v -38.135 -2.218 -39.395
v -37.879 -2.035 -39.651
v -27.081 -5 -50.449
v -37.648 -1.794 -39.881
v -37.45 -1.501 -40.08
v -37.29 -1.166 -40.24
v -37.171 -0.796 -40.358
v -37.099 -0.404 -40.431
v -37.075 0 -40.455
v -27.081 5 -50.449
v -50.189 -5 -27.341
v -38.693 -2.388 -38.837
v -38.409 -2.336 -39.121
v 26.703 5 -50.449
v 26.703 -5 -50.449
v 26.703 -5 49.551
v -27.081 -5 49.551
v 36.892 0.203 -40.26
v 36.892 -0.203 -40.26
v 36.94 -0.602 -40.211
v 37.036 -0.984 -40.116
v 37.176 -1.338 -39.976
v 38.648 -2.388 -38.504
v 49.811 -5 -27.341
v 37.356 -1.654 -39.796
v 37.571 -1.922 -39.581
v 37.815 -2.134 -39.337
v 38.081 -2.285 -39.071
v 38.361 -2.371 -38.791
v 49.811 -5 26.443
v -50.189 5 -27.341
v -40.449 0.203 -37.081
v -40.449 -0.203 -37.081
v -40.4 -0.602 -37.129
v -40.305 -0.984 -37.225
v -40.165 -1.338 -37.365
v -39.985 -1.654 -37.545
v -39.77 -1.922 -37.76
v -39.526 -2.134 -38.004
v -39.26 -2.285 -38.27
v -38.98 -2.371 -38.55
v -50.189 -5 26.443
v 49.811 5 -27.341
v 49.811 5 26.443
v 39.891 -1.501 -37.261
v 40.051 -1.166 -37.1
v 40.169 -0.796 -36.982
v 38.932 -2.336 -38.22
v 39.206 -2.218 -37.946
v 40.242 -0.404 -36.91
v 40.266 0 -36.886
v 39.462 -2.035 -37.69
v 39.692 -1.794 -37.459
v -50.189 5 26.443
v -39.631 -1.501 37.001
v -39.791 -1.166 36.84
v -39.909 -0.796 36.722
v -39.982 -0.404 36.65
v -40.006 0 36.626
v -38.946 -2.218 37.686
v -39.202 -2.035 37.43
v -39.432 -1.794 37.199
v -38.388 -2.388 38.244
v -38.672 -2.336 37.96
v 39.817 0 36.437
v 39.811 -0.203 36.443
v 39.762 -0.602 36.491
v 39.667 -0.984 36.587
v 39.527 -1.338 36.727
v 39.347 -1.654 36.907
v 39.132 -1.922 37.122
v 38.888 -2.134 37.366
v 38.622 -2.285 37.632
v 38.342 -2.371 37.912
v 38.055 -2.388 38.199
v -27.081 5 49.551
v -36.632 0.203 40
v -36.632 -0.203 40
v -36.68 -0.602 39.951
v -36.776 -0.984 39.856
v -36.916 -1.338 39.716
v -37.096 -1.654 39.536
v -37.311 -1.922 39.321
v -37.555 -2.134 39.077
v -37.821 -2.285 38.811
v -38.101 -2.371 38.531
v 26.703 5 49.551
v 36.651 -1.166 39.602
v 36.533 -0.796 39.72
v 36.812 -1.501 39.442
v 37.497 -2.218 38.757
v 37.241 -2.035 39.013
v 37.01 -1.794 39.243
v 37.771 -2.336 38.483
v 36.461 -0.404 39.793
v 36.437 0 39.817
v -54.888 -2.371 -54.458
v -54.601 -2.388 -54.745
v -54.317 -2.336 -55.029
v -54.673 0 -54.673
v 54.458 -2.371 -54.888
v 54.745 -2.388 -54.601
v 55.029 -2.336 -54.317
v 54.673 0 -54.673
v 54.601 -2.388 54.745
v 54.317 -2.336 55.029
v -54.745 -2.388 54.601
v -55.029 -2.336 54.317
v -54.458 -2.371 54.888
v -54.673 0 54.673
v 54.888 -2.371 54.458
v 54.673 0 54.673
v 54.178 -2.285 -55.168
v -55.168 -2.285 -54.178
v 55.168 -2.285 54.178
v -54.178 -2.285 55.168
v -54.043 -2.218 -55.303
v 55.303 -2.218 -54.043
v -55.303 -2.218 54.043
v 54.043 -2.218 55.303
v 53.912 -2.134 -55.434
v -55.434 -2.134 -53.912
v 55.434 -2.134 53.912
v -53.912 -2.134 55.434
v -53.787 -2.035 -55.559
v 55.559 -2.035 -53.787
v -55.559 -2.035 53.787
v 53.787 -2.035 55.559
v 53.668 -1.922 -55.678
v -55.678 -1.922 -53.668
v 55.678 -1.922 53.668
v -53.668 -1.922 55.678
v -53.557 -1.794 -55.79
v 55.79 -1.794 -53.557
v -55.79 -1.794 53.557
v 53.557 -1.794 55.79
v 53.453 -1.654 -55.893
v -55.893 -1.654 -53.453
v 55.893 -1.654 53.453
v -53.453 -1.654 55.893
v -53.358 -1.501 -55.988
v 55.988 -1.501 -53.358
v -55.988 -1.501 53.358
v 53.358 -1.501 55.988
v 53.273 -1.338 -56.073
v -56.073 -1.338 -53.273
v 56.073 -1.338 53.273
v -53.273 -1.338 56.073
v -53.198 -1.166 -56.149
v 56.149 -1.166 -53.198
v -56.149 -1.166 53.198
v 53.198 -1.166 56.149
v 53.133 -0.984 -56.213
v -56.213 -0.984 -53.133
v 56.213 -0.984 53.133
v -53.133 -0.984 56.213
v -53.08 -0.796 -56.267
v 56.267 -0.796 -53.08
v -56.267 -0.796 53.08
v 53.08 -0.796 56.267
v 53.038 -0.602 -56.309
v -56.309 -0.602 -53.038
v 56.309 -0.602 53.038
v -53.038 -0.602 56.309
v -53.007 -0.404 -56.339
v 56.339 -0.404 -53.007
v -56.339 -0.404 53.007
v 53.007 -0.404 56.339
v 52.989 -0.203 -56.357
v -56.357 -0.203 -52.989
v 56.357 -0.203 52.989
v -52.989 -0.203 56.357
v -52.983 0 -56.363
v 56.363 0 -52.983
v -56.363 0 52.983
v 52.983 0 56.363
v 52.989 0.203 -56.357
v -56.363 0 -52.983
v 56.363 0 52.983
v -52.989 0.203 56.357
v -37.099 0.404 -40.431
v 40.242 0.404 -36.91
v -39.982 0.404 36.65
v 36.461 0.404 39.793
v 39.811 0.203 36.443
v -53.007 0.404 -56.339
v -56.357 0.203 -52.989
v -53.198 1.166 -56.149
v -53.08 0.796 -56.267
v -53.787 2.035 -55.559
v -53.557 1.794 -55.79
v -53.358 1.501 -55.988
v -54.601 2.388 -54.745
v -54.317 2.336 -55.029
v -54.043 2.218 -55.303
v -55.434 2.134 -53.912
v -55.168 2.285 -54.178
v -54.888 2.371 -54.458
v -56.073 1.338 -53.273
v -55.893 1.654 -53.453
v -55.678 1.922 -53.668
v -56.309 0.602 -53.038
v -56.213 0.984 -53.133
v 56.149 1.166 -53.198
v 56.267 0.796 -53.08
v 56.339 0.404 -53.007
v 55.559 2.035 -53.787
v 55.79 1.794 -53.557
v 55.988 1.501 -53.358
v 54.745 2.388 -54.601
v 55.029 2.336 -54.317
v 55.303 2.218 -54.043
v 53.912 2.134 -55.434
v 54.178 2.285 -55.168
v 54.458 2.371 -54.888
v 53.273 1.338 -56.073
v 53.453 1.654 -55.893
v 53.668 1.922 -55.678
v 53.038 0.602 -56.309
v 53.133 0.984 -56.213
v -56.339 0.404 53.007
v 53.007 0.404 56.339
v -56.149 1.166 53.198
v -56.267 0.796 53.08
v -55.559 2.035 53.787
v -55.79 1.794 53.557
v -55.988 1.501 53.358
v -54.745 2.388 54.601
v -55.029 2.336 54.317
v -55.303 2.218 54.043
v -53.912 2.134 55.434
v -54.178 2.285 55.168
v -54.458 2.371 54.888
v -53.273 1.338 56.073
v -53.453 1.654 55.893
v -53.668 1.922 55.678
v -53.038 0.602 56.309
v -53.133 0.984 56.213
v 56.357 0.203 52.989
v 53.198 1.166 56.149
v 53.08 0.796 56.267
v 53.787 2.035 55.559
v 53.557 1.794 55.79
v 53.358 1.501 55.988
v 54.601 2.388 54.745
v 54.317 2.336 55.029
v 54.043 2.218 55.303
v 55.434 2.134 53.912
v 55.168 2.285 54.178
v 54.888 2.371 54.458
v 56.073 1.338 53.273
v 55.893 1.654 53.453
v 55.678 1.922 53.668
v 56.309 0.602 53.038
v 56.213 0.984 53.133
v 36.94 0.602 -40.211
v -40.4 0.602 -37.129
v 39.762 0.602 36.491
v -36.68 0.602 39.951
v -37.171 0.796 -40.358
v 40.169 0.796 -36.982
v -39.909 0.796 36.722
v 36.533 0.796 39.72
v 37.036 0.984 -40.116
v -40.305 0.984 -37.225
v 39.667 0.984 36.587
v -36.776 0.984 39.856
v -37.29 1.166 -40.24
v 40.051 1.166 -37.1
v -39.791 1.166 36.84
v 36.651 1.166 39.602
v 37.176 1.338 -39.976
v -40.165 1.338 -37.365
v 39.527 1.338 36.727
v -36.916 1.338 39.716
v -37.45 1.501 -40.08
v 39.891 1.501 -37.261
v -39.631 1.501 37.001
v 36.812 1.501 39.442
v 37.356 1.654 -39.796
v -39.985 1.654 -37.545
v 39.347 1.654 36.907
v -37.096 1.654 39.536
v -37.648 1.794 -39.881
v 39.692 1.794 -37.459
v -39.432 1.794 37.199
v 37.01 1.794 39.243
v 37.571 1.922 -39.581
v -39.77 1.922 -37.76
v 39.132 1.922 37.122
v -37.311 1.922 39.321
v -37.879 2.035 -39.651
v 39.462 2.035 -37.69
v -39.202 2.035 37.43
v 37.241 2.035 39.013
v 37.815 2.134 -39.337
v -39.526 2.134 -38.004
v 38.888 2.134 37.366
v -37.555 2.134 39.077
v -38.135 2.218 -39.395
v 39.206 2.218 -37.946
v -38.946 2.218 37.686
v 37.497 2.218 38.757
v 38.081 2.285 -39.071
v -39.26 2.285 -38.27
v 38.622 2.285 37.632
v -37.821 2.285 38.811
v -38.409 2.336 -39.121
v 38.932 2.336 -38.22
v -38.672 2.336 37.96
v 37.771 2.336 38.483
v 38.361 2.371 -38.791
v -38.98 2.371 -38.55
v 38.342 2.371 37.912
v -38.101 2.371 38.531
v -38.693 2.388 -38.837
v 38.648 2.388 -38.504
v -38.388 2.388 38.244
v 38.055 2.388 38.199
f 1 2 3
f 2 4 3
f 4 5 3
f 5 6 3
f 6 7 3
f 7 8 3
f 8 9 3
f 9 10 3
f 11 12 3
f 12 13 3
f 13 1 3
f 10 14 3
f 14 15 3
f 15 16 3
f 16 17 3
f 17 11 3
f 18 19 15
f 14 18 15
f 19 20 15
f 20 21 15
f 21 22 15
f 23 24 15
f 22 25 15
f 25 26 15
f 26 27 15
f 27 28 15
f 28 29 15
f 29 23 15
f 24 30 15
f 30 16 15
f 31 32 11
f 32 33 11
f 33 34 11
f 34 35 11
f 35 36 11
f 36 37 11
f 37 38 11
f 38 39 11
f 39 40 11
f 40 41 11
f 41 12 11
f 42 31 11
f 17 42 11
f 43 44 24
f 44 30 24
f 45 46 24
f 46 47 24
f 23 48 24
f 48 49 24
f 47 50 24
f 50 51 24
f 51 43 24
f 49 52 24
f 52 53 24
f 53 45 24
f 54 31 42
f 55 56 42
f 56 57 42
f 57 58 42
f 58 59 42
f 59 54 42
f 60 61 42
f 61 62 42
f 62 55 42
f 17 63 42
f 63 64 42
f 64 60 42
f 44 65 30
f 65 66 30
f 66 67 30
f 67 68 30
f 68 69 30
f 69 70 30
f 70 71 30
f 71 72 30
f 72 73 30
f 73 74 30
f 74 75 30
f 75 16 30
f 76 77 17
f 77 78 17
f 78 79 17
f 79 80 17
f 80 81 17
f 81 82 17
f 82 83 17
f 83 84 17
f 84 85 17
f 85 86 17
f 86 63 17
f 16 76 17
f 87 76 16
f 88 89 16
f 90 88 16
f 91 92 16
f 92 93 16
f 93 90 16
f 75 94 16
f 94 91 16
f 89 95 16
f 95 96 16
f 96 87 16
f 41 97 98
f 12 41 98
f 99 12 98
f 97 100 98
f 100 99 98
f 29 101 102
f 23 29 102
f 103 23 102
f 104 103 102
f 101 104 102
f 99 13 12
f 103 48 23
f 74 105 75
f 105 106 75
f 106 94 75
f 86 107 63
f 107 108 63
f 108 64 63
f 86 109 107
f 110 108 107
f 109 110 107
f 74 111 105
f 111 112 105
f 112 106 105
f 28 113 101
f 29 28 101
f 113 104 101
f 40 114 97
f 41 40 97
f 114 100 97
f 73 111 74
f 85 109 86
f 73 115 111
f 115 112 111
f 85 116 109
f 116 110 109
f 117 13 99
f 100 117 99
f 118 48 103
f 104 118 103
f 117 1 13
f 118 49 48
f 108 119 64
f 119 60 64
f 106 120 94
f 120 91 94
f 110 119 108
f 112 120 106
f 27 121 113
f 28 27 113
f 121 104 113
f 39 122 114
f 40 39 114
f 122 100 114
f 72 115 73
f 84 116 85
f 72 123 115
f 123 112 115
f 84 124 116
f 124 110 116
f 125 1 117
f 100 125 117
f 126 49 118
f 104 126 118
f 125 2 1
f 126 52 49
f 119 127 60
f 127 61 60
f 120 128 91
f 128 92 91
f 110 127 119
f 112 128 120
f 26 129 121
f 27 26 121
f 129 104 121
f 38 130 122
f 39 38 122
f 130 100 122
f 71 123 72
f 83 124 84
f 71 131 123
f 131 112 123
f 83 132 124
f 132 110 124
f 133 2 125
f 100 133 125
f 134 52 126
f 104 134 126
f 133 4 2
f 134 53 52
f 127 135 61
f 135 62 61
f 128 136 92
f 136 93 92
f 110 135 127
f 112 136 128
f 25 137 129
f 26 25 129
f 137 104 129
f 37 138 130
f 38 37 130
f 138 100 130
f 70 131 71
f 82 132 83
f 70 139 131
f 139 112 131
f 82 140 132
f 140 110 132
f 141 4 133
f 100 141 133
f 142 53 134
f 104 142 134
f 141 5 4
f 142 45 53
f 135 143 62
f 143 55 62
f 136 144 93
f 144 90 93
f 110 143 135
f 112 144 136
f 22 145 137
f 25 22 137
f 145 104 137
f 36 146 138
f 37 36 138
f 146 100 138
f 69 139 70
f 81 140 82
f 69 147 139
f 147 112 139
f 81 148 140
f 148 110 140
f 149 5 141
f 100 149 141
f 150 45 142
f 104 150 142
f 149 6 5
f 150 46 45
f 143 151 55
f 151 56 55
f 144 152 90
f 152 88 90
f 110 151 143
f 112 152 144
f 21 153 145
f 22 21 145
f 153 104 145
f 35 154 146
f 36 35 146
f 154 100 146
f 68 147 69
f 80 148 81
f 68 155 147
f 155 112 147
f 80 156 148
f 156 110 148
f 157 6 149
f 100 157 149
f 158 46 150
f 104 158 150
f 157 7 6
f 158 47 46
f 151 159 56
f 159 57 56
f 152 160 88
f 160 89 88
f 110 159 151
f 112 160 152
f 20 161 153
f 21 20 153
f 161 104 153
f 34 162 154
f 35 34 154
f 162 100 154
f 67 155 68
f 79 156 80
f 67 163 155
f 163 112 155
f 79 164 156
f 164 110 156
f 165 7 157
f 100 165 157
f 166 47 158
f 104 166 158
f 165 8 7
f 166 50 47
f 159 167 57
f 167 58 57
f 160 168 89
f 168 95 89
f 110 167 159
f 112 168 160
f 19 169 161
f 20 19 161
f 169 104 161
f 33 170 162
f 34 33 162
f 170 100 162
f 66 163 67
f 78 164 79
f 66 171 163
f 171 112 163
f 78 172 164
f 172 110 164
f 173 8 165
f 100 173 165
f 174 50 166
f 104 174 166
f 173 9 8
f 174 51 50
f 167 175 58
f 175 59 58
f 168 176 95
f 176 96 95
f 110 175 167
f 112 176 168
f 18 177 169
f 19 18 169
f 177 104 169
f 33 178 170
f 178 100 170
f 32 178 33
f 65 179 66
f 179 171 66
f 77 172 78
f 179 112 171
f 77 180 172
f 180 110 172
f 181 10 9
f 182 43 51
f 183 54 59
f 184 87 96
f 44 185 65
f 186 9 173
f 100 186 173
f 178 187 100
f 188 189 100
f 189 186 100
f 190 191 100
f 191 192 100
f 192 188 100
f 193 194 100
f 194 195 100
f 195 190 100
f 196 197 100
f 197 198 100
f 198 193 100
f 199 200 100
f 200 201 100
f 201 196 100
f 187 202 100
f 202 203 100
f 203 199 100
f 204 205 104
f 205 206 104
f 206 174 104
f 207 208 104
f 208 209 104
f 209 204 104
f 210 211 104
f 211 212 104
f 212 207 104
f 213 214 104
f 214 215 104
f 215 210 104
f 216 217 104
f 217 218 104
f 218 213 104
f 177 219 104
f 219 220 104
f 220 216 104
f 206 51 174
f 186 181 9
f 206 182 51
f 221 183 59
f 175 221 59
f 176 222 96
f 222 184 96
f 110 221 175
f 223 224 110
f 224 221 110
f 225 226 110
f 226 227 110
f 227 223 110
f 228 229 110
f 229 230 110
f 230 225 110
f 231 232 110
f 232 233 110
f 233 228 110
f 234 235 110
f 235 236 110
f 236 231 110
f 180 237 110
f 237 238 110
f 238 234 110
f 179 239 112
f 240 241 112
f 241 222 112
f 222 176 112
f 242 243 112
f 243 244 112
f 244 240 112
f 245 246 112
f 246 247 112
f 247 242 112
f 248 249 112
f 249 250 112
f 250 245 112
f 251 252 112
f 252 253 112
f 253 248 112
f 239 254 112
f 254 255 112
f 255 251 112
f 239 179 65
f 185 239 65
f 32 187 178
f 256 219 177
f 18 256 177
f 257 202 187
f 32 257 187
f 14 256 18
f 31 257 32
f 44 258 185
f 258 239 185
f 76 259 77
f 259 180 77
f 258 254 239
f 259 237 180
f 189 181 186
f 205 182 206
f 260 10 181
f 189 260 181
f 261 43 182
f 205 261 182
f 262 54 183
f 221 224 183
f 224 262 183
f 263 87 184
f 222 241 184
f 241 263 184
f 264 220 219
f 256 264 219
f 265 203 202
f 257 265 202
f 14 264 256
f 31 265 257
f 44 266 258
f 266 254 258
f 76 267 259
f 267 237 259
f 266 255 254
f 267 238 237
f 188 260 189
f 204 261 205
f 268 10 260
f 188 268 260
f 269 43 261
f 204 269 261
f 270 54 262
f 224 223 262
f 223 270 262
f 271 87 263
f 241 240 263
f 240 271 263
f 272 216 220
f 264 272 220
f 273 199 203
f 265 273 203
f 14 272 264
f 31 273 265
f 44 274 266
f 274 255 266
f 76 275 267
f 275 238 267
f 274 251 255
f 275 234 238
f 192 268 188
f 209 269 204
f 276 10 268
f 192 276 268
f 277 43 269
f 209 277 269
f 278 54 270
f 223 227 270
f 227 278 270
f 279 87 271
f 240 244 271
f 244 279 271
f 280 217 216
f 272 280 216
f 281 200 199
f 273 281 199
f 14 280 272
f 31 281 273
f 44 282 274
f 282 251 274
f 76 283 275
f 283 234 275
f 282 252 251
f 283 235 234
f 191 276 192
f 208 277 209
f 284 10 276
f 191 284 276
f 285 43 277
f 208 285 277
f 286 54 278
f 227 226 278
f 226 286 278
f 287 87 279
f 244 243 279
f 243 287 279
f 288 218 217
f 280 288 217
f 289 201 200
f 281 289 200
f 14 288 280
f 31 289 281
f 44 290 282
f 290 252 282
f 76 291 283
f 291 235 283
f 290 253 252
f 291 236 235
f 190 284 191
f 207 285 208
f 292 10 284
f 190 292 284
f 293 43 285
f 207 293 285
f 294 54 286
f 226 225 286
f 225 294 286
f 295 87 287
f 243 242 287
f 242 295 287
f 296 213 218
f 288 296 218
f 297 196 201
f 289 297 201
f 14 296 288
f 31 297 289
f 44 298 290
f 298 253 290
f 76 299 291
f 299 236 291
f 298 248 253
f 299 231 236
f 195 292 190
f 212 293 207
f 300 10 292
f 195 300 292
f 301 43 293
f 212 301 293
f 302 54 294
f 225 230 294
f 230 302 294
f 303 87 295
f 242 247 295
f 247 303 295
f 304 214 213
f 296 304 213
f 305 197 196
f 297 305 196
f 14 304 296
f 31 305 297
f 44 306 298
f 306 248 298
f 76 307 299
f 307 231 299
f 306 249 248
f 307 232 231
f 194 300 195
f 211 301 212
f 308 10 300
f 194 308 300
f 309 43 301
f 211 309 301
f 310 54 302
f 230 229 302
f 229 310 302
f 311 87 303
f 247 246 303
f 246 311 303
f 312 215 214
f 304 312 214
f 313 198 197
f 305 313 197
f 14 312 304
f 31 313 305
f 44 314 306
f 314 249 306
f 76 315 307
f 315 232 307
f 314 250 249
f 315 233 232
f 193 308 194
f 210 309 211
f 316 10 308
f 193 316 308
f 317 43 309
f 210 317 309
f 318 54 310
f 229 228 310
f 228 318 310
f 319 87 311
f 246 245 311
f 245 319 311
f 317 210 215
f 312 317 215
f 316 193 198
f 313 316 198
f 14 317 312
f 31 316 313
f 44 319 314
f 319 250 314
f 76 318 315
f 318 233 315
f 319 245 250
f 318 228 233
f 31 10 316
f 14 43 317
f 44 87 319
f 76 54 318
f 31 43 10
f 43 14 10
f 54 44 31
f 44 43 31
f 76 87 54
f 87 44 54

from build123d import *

# Parameters (mm, degrees)
BOSS_EXTRUDE1_DEPTH     = 5
SKETCH3_R               = 2.39
BOSS_EXTRUDE2_DEPTH     = 23.4
MIRROR3_COPY_1_SKETCH_R = 2.39
MIRROR3_COPY_1_DEPTH    = 23.4


with BuildPart() as part:
    # Sketch2 → Boss-Extrude1 (new, symmetric)
    with BuildSketch(Plane(origin=(0, 0, 0), x_dir=(1, 0, 0), z_dir=(0, 1, 0))):
        Polygon((-50.18902685, 27.340766285), (-50.18902685, -26.442734497), (-27.080777241, -49.550984106), (26.70272354, -49.550984106), (49.81097315, -26.442734497), (49.81097315, 27.340766285), (26.70272354, 50.449015894), (-27.080777241, 50.449015894), align=None)
    extrude(amount=BOSS_EXTRUDE1_DEPTH, both=True)

    # Sketch3 → Boss-Extrude2 (add)
    with BuildSketch(Plane(origin=(38.126853823, 0, 38.126853823), x_dir=(0.7071067811865475, 0, -0.7071067811865477), z_dir=(0.7071067811865477, 0, 0.7071067811865475))):
        Circle(SKETCH3_R)
    boss_extrude2 = extrude(amount=BOSS_EXTRUDE2_DEPTH)

    # Mirror2: Boss-Extrude2 across plane
    add(boss_extrude2.mirror(Plane(origin=(0, 0, 0), x_dir=(0, 0, 1), z_dir=(1, 0, 0))))

    # Mirror3: Boss-Extrude2 across plane
    add(boss_extrude2.mirror(Plane.XY))

    # Mirror3 copy 1 sketch → Mirror3 copy 1 (add)
    with BuildSketch(Plane(origin=(-38.126853823, 0, -38.126853823), x_dir=(-0.7071067811865475, 0, 0.7071067811865477), z_dir=(-0.7071067811865477, 0, -0.7071067811865475))):
        Circle(MIRROR3_COPY_1_SKETCH_R)
    extrude(amount=MIRROR3_COPY_1_DEPTH)


solid = part.part
